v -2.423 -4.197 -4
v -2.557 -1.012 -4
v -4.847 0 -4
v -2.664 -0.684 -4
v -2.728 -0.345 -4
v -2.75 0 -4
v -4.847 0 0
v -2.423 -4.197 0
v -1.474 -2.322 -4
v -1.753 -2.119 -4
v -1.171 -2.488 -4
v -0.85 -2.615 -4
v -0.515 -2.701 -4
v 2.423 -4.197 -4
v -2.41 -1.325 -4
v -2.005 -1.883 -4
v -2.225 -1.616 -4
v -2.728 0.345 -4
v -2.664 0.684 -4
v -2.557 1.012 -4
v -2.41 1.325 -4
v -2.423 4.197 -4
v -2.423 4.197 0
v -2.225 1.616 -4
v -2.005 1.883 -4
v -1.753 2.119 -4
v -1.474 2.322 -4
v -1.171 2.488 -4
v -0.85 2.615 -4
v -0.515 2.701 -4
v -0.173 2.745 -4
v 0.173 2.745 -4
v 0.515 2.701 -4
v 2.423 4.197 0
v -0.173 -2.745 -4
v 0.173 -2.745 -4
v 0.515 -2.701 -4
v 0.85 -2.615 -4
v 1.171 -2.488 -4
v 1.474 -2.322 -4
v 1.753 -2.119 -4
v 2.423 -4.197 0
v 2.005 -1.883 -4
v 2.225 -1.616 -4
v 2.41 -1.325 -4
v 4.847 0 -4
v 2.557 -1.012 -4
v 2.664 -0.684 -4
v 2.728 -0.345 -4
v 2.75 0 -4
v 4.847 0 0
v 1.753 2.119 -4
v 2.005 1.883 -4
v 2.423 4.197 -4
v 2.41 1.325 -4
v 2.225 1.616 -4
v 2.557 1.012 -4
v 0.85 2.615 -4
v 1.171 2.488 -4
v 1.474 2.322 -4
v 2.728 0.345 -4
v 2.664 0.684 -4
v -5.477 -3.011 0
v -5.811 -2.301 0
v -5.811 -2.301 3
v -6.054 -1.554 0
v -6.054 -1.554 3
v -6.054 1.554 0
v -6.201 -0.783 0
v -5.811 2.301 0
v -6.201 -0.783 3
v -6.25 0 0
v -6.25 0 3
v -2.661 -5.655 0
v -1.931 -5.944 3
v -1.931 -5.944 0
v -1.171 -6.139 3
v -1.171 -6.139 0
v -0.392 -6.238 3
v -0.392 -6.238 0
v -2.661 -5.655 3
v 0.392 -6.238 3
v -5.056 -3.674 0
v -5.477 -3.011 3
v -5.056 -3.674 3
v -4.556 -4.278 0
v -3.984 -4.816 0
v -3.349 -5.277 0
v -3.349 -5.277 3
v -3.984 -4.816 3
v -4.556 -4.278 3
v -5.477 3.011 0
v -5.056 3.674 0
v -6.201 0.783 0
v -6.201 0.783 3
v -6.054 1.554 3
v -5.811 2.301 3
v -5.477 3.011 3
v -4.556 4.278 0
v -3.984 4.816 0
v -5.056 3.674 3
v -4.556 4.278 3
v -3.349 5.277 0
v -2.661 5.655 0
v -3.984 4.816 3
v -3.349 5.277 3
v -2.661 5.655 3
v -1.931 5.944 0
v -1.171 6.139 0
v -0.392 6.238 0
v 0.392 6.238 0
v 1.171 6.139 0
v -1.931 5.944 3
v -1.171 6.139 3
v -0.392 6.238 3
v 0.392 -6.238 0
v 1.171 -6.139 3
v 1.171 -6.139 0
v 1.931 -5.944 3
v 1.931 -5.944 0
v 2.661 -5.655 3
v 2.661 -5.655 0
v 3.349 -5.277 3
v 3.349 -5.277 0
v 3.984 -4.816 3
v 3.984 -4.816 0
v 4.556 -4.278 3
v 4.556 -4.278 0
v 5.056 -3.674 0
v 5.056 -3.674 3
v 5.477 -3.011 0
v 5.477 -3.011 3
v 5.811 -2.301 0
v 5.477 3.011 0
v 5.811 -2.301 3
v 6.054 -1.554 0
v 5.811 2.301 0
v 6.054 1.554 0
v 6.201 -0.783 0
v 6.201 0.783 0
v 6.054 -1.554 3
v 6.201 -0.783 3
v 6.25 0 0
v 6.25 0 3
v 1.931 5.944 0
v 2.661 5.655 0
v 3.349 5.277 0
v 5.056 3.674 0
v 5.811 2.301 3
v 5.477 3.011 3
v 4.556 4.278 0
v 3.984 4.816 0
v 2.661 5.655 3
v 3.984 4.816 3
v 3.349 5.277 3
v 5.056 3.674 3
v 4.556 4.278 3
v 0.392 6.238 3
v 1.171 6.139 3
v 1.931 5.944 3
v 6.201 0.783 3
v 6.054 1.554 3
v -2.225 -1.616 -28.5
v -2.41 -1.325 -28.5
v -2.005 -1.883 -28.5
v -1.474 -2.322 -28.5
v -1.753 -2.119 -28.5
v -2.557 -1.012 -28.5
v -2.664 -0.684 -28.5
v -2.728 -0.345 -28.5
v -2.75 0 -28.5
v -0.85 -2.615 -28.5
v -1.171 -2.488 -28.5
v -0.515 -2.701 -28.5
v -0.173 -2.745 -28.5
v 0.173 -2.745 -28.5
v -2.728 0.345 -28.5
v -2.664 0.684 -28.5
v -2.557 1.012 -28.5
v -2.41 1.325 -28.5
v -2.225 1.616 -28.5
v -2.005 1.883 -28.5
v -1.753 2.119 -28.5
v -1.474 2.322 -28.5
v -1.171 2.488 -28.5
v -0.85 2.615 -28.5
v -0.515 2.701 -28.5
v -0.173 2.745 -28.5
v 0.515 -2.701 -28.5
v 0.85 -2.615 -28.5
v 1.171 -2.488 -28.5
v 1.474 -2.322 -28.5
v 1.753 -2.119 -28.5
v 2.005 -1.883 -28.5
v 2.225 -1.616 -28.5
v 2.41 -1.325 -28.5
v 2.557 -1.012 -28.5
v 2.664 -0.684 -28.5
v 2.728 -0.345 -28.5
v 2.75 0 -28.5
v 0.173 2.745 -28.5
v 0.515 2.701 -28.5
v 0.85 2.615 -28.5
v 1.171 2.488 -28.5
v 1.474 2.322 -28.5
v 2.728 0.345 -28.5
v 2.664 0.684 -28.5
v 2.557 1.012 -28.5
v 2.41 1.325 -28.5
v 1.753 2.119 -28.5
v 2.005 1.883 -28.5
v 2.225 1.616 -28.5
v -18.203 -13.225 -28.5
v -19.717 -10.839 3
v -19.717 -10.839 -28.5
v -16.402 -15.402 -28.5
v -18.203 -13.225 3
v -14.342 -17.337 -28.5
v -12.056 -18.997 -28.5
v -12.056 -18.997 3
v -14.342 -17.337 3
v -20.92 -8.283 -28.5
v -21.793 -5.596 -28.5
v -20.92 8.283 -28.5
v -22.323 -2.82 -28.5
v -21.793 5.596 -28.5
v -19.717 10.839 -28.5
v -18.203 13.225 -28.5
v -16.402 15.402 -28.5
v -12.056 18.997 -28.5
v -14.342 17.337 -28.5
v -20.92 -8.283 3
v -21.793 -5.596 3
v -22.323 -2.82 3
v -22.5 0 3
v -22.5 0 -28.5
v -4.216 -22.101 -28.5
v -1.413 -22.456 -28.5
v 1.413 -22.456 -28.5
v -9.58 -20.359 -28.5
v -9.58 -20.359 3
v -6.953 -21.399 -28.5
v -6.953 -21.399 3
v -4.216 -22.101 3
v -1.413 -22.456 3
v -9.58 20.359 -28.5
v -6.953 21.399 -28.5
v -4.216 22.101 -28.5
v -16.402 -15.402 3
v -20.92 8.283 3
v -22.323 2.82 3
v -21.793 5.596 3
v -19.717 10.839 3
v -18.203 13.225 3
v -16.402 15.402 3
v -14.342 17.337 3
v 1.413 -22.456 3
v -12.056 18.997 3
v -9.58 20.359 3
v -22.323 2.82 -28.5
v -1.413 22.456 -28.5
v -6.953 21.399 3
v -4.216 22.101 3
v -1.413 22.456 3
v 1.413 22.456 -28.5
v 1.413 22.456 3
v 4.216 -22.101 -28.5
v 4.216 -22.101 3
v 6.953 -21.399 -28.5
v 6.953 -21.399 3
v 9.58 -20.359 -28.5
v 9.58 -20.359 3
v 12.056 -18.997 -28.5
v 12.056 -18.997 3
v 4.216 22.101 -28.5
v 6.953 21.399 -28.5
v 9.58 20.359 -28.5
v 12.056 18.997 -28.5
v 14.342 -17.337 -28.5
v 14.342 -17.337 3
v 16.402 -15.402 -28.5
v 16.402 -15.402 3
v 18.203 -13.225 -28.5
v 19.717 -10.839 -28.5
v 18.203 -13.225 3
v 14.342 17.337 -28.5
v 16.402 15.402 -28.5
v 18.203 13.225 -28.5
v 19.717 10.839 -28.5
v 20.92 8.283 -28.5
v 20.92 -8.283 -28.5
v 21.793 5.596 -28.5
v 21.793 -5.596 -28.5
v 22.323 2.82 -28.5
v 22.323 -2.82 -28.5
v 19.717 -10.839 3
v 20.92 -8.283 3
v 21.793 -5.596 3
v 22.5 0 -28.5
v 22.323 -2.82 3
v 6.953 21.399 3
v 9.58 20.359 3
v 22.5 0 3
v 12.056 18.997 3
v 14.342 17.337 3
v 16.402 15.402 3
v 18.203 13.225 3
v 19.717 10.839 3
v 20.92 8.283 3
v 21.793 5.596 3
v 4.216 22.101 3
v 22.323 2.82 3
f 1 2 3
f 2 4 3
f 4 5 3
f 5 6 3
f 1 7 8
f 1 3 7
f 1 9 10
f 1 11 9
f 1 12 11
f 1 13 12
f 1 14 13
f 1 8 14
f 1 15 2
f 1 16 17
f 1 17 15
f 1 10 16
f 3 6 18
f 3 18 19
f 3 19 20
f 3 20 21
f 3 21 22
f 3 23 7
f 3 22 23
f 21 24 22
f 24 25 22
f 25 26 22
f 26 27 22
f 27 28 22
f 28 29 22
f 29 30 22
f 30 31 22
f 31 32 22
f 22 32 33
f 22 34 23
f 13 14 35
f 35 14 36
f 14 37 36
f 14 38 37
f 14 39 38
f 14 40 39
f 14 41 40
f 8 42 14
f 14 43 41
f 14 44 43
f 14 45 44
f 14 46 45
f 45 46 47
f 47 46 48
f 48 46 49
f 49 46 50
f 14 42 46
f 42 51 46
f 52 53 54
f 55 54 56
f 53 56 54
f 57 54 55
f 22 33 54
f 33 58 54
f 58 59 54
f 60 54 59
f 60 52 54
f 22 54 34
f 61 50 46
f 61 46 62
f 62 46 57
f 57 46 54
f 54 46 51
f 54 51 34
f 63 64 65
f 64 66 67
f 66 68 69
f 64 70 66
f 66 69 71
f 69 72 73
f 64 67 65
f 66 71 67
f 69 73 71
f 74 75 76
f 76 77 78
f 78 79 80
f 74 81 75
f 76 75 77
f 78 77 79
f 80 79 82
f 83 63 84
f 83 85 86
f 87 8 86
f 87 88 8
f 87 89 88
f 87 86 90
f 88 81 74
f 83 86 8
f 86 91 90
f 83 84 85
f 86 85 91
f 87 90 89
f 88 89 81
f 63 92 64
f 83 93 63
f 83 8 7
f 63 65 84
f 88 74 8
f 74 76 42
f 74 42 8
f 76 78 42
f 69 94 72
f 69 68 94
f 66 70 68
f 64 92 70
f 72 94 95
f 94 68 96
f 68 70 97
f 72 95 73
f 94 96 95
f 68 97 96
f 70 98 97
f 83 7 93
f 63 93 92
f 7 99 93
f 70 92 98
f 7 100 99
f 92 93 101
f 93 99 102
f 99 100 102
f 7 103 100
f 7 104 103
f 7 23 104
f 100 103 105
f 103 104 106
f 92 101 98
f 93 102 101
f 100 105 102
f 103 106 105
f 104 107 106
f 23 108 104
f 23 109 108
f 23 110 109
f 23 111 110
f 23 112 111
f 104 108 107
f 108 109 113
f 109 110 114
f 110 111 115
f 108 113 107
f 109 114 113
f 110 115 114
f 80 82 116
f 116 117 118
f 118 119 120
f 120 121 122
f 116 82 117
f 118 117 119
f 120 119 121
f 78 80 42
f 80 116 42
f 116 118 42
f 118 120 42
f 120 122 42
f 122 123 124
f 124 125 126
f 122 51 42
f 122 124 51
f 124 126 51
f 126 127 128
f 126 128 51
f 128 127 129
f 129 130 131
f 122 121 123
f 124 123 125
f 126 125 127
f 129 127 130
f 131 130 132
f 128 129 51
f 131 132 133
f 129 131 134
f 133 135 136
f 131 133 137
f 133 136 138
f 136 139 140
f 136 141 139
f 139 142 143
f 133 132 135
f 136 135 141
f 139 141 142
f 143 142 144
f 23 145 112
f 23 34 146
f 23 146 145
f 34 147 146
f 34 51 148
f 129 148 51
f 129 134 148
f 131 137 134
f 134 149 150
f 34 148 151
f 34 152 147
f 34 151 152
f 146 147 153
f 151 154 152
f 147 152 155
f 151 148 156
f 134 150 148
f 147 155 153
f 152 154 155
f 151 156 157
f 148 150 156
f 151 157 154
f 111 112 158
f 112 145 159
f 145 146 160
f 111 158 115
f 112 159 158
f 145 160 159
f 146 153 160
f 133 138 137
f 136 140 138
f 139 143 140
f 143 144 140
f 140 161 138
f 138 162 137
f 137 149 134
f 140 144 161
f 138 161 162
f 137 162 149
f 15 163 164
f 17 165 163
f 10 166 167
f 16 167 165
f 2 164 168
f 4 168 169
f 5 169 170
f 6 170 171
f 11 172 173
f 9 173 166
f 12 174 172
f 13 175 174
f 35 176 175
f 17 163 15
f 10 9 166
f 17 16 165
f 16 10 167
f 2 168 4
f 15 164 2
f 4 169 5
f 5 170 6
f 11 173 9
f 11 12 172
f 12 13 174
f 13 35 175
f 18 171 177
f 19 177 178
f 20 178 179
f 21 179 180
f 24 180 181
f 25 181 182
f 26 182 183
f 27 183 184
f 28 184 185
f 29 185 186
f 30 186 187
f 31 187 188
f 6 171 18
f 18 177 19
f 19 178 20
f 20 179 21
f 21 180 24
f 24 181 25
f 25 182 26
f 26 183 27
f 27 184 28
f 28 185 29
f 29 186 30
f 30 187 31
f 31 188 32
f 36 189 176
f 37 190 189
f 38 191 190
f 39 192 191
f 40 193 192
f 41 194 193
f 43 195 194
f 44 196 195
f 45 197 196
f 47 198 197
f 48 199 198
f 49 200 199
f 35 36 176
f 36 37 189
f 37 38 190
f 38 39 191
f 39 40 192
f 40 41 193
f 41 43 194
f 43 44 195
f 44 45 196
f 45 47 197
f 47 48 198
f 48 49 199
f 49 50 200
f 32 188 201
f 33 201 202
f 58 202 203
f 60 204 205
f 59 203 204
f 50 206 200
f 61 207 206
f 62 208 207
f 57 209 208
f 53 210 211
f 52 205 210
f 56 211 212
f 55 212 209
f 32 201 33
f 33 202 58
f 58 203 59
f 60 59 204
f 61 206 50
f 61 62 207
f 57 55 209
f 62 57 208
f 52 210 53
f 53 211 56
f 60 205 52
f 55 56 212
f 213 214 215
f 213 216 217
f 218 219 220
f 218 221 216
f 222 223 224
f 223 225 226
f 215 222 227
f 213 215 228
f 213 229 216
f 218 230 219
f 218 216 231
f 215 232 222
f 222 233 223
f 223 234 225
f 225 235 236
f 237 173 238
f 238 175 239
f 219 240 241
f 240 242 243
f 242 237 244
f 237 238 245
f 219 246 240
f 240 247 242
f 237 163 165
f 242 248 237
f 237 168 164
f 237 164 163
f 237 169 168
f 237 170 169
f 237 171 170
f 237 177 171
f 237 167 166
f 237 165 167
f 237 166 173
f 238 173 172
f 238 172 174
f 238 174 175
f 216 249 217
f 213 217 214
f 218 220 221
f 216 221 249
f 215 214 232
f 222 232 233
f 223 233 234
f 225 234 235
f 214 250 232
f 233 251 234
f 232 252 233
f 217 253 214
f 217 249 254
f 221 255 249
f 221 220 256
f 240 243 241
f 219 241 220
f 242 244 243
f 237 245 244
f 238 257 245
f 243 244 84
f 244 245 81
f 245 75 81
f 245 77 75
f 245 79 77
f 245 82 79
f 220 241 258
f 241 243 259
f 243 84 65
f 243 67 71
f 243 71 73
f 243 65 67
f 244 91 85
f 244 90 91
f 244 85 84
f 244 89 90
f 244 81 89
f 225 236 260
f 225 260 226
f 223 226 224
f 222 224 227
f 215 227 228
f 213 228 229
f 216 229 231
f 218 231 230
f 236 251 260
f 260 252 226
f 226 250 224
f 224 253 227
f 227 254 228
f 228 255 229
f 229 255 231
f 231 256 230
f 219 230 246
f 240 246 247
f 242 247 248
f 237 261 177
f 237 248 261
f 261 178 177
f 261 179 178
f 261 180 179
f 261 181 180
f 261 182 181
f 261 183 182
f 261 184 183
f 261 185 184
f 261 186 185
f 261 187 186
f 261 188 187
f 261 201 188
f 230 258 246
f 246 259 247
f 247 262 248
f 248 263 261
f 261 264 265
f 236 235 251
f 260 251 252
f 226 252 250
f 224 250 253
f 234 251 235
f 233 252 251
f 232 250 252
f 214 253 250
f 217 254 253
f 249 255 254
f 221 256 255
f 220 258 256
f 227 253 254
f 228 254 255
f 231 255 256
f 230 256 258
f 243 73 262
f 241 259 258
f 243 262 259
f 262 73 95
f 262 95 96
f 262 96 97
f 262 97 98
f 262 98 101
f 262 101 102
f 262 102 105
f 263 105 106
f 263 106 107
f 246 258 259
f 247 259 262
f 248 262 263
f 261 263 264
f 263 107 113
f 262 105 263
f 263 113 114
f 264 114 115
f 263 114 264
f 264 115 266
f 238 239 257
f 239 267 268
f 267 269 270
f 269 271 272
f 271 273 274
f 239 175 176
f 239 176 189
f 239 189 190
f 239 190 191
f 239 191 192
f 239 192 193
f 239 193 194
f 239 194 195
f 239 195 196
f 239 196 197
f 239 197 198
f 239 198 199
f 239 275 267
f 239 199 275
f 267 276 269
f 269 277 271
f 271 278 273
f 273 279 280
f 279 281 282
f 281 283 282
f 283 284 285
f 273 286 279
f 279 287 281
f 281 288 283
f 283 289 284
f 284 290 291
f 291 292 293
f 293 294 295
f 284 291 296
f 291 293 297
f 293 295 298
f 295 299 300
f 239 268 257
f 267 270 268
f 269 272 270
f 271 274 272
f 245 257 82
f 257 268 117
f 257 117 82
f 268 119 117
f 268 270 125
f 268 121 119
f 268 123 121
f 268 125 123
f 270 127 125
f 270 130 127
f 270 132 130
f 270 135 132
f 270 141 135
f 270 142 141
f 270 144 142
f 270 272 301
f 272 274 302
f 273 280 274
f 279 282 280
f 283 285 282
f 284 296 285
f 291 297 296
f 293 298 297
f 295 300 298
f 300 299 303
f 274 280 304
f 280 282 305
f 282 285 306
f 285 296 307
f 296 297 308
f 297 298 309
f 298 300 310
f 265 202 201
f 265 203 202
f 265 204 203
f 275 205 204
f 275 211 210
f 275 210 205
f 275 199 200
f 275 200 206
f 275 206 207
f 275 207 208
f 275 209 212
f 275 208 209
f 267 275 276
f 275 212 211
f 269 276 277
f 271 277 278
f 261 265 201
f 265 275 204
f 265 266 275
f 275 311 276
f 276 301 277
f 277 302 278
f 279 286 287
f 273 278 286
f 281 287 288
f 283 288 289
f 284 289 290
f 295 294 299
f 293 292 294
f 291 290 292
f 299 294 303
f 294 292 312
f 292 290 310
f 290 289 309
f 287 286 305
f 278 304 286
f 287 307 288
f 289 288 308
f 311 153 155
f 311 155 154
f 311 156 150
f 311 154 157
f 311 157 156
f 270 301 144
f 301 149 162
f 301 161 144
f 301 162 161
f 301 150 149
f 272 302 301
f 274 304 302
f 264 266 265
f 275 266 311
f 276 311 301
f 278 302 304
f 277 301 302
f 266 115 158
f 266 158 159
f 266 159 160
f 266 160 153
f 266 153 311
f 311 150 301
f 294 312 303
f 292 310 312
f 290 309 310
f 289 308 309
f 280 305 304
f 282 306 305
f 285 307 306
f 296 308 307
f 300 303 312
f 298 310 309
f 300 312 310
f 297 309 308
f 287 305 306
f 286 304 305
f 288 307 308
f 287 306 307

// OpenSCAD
$fn = 50;

difference() {
	union() {
		translate(v = [0, 0, -28.5]) {
			cylinder(h = 31.5, r = 22.5);
		}
	}
	union() {
		translate(v = [0, 0, 0]) {
			rotate(a = [0, 0, 0]) {
				difference() {
					union() {
						translate(v = [0, 0, -4]) {
							linear_extrude(height = 4) {
								polygon(points = [[4.8468, 0.0], [2.4234000000000004, 4.197451927062417], [-2.423399999999999, 4.197451927062417], [-4.8468, 5.935618106107392e-16], [-2.423400000000002, -4.197451927062416], [2.423399999999997, -4.197451927062419]]);
							}
						}
					}
					union();
				}
			}
		}
		#cylinder(h = 3, r = 6.25);
		#translate(v = [0, 0, -100.0]) {
			cylinder(h = 200, r = 2.75);
		}
	}
}
